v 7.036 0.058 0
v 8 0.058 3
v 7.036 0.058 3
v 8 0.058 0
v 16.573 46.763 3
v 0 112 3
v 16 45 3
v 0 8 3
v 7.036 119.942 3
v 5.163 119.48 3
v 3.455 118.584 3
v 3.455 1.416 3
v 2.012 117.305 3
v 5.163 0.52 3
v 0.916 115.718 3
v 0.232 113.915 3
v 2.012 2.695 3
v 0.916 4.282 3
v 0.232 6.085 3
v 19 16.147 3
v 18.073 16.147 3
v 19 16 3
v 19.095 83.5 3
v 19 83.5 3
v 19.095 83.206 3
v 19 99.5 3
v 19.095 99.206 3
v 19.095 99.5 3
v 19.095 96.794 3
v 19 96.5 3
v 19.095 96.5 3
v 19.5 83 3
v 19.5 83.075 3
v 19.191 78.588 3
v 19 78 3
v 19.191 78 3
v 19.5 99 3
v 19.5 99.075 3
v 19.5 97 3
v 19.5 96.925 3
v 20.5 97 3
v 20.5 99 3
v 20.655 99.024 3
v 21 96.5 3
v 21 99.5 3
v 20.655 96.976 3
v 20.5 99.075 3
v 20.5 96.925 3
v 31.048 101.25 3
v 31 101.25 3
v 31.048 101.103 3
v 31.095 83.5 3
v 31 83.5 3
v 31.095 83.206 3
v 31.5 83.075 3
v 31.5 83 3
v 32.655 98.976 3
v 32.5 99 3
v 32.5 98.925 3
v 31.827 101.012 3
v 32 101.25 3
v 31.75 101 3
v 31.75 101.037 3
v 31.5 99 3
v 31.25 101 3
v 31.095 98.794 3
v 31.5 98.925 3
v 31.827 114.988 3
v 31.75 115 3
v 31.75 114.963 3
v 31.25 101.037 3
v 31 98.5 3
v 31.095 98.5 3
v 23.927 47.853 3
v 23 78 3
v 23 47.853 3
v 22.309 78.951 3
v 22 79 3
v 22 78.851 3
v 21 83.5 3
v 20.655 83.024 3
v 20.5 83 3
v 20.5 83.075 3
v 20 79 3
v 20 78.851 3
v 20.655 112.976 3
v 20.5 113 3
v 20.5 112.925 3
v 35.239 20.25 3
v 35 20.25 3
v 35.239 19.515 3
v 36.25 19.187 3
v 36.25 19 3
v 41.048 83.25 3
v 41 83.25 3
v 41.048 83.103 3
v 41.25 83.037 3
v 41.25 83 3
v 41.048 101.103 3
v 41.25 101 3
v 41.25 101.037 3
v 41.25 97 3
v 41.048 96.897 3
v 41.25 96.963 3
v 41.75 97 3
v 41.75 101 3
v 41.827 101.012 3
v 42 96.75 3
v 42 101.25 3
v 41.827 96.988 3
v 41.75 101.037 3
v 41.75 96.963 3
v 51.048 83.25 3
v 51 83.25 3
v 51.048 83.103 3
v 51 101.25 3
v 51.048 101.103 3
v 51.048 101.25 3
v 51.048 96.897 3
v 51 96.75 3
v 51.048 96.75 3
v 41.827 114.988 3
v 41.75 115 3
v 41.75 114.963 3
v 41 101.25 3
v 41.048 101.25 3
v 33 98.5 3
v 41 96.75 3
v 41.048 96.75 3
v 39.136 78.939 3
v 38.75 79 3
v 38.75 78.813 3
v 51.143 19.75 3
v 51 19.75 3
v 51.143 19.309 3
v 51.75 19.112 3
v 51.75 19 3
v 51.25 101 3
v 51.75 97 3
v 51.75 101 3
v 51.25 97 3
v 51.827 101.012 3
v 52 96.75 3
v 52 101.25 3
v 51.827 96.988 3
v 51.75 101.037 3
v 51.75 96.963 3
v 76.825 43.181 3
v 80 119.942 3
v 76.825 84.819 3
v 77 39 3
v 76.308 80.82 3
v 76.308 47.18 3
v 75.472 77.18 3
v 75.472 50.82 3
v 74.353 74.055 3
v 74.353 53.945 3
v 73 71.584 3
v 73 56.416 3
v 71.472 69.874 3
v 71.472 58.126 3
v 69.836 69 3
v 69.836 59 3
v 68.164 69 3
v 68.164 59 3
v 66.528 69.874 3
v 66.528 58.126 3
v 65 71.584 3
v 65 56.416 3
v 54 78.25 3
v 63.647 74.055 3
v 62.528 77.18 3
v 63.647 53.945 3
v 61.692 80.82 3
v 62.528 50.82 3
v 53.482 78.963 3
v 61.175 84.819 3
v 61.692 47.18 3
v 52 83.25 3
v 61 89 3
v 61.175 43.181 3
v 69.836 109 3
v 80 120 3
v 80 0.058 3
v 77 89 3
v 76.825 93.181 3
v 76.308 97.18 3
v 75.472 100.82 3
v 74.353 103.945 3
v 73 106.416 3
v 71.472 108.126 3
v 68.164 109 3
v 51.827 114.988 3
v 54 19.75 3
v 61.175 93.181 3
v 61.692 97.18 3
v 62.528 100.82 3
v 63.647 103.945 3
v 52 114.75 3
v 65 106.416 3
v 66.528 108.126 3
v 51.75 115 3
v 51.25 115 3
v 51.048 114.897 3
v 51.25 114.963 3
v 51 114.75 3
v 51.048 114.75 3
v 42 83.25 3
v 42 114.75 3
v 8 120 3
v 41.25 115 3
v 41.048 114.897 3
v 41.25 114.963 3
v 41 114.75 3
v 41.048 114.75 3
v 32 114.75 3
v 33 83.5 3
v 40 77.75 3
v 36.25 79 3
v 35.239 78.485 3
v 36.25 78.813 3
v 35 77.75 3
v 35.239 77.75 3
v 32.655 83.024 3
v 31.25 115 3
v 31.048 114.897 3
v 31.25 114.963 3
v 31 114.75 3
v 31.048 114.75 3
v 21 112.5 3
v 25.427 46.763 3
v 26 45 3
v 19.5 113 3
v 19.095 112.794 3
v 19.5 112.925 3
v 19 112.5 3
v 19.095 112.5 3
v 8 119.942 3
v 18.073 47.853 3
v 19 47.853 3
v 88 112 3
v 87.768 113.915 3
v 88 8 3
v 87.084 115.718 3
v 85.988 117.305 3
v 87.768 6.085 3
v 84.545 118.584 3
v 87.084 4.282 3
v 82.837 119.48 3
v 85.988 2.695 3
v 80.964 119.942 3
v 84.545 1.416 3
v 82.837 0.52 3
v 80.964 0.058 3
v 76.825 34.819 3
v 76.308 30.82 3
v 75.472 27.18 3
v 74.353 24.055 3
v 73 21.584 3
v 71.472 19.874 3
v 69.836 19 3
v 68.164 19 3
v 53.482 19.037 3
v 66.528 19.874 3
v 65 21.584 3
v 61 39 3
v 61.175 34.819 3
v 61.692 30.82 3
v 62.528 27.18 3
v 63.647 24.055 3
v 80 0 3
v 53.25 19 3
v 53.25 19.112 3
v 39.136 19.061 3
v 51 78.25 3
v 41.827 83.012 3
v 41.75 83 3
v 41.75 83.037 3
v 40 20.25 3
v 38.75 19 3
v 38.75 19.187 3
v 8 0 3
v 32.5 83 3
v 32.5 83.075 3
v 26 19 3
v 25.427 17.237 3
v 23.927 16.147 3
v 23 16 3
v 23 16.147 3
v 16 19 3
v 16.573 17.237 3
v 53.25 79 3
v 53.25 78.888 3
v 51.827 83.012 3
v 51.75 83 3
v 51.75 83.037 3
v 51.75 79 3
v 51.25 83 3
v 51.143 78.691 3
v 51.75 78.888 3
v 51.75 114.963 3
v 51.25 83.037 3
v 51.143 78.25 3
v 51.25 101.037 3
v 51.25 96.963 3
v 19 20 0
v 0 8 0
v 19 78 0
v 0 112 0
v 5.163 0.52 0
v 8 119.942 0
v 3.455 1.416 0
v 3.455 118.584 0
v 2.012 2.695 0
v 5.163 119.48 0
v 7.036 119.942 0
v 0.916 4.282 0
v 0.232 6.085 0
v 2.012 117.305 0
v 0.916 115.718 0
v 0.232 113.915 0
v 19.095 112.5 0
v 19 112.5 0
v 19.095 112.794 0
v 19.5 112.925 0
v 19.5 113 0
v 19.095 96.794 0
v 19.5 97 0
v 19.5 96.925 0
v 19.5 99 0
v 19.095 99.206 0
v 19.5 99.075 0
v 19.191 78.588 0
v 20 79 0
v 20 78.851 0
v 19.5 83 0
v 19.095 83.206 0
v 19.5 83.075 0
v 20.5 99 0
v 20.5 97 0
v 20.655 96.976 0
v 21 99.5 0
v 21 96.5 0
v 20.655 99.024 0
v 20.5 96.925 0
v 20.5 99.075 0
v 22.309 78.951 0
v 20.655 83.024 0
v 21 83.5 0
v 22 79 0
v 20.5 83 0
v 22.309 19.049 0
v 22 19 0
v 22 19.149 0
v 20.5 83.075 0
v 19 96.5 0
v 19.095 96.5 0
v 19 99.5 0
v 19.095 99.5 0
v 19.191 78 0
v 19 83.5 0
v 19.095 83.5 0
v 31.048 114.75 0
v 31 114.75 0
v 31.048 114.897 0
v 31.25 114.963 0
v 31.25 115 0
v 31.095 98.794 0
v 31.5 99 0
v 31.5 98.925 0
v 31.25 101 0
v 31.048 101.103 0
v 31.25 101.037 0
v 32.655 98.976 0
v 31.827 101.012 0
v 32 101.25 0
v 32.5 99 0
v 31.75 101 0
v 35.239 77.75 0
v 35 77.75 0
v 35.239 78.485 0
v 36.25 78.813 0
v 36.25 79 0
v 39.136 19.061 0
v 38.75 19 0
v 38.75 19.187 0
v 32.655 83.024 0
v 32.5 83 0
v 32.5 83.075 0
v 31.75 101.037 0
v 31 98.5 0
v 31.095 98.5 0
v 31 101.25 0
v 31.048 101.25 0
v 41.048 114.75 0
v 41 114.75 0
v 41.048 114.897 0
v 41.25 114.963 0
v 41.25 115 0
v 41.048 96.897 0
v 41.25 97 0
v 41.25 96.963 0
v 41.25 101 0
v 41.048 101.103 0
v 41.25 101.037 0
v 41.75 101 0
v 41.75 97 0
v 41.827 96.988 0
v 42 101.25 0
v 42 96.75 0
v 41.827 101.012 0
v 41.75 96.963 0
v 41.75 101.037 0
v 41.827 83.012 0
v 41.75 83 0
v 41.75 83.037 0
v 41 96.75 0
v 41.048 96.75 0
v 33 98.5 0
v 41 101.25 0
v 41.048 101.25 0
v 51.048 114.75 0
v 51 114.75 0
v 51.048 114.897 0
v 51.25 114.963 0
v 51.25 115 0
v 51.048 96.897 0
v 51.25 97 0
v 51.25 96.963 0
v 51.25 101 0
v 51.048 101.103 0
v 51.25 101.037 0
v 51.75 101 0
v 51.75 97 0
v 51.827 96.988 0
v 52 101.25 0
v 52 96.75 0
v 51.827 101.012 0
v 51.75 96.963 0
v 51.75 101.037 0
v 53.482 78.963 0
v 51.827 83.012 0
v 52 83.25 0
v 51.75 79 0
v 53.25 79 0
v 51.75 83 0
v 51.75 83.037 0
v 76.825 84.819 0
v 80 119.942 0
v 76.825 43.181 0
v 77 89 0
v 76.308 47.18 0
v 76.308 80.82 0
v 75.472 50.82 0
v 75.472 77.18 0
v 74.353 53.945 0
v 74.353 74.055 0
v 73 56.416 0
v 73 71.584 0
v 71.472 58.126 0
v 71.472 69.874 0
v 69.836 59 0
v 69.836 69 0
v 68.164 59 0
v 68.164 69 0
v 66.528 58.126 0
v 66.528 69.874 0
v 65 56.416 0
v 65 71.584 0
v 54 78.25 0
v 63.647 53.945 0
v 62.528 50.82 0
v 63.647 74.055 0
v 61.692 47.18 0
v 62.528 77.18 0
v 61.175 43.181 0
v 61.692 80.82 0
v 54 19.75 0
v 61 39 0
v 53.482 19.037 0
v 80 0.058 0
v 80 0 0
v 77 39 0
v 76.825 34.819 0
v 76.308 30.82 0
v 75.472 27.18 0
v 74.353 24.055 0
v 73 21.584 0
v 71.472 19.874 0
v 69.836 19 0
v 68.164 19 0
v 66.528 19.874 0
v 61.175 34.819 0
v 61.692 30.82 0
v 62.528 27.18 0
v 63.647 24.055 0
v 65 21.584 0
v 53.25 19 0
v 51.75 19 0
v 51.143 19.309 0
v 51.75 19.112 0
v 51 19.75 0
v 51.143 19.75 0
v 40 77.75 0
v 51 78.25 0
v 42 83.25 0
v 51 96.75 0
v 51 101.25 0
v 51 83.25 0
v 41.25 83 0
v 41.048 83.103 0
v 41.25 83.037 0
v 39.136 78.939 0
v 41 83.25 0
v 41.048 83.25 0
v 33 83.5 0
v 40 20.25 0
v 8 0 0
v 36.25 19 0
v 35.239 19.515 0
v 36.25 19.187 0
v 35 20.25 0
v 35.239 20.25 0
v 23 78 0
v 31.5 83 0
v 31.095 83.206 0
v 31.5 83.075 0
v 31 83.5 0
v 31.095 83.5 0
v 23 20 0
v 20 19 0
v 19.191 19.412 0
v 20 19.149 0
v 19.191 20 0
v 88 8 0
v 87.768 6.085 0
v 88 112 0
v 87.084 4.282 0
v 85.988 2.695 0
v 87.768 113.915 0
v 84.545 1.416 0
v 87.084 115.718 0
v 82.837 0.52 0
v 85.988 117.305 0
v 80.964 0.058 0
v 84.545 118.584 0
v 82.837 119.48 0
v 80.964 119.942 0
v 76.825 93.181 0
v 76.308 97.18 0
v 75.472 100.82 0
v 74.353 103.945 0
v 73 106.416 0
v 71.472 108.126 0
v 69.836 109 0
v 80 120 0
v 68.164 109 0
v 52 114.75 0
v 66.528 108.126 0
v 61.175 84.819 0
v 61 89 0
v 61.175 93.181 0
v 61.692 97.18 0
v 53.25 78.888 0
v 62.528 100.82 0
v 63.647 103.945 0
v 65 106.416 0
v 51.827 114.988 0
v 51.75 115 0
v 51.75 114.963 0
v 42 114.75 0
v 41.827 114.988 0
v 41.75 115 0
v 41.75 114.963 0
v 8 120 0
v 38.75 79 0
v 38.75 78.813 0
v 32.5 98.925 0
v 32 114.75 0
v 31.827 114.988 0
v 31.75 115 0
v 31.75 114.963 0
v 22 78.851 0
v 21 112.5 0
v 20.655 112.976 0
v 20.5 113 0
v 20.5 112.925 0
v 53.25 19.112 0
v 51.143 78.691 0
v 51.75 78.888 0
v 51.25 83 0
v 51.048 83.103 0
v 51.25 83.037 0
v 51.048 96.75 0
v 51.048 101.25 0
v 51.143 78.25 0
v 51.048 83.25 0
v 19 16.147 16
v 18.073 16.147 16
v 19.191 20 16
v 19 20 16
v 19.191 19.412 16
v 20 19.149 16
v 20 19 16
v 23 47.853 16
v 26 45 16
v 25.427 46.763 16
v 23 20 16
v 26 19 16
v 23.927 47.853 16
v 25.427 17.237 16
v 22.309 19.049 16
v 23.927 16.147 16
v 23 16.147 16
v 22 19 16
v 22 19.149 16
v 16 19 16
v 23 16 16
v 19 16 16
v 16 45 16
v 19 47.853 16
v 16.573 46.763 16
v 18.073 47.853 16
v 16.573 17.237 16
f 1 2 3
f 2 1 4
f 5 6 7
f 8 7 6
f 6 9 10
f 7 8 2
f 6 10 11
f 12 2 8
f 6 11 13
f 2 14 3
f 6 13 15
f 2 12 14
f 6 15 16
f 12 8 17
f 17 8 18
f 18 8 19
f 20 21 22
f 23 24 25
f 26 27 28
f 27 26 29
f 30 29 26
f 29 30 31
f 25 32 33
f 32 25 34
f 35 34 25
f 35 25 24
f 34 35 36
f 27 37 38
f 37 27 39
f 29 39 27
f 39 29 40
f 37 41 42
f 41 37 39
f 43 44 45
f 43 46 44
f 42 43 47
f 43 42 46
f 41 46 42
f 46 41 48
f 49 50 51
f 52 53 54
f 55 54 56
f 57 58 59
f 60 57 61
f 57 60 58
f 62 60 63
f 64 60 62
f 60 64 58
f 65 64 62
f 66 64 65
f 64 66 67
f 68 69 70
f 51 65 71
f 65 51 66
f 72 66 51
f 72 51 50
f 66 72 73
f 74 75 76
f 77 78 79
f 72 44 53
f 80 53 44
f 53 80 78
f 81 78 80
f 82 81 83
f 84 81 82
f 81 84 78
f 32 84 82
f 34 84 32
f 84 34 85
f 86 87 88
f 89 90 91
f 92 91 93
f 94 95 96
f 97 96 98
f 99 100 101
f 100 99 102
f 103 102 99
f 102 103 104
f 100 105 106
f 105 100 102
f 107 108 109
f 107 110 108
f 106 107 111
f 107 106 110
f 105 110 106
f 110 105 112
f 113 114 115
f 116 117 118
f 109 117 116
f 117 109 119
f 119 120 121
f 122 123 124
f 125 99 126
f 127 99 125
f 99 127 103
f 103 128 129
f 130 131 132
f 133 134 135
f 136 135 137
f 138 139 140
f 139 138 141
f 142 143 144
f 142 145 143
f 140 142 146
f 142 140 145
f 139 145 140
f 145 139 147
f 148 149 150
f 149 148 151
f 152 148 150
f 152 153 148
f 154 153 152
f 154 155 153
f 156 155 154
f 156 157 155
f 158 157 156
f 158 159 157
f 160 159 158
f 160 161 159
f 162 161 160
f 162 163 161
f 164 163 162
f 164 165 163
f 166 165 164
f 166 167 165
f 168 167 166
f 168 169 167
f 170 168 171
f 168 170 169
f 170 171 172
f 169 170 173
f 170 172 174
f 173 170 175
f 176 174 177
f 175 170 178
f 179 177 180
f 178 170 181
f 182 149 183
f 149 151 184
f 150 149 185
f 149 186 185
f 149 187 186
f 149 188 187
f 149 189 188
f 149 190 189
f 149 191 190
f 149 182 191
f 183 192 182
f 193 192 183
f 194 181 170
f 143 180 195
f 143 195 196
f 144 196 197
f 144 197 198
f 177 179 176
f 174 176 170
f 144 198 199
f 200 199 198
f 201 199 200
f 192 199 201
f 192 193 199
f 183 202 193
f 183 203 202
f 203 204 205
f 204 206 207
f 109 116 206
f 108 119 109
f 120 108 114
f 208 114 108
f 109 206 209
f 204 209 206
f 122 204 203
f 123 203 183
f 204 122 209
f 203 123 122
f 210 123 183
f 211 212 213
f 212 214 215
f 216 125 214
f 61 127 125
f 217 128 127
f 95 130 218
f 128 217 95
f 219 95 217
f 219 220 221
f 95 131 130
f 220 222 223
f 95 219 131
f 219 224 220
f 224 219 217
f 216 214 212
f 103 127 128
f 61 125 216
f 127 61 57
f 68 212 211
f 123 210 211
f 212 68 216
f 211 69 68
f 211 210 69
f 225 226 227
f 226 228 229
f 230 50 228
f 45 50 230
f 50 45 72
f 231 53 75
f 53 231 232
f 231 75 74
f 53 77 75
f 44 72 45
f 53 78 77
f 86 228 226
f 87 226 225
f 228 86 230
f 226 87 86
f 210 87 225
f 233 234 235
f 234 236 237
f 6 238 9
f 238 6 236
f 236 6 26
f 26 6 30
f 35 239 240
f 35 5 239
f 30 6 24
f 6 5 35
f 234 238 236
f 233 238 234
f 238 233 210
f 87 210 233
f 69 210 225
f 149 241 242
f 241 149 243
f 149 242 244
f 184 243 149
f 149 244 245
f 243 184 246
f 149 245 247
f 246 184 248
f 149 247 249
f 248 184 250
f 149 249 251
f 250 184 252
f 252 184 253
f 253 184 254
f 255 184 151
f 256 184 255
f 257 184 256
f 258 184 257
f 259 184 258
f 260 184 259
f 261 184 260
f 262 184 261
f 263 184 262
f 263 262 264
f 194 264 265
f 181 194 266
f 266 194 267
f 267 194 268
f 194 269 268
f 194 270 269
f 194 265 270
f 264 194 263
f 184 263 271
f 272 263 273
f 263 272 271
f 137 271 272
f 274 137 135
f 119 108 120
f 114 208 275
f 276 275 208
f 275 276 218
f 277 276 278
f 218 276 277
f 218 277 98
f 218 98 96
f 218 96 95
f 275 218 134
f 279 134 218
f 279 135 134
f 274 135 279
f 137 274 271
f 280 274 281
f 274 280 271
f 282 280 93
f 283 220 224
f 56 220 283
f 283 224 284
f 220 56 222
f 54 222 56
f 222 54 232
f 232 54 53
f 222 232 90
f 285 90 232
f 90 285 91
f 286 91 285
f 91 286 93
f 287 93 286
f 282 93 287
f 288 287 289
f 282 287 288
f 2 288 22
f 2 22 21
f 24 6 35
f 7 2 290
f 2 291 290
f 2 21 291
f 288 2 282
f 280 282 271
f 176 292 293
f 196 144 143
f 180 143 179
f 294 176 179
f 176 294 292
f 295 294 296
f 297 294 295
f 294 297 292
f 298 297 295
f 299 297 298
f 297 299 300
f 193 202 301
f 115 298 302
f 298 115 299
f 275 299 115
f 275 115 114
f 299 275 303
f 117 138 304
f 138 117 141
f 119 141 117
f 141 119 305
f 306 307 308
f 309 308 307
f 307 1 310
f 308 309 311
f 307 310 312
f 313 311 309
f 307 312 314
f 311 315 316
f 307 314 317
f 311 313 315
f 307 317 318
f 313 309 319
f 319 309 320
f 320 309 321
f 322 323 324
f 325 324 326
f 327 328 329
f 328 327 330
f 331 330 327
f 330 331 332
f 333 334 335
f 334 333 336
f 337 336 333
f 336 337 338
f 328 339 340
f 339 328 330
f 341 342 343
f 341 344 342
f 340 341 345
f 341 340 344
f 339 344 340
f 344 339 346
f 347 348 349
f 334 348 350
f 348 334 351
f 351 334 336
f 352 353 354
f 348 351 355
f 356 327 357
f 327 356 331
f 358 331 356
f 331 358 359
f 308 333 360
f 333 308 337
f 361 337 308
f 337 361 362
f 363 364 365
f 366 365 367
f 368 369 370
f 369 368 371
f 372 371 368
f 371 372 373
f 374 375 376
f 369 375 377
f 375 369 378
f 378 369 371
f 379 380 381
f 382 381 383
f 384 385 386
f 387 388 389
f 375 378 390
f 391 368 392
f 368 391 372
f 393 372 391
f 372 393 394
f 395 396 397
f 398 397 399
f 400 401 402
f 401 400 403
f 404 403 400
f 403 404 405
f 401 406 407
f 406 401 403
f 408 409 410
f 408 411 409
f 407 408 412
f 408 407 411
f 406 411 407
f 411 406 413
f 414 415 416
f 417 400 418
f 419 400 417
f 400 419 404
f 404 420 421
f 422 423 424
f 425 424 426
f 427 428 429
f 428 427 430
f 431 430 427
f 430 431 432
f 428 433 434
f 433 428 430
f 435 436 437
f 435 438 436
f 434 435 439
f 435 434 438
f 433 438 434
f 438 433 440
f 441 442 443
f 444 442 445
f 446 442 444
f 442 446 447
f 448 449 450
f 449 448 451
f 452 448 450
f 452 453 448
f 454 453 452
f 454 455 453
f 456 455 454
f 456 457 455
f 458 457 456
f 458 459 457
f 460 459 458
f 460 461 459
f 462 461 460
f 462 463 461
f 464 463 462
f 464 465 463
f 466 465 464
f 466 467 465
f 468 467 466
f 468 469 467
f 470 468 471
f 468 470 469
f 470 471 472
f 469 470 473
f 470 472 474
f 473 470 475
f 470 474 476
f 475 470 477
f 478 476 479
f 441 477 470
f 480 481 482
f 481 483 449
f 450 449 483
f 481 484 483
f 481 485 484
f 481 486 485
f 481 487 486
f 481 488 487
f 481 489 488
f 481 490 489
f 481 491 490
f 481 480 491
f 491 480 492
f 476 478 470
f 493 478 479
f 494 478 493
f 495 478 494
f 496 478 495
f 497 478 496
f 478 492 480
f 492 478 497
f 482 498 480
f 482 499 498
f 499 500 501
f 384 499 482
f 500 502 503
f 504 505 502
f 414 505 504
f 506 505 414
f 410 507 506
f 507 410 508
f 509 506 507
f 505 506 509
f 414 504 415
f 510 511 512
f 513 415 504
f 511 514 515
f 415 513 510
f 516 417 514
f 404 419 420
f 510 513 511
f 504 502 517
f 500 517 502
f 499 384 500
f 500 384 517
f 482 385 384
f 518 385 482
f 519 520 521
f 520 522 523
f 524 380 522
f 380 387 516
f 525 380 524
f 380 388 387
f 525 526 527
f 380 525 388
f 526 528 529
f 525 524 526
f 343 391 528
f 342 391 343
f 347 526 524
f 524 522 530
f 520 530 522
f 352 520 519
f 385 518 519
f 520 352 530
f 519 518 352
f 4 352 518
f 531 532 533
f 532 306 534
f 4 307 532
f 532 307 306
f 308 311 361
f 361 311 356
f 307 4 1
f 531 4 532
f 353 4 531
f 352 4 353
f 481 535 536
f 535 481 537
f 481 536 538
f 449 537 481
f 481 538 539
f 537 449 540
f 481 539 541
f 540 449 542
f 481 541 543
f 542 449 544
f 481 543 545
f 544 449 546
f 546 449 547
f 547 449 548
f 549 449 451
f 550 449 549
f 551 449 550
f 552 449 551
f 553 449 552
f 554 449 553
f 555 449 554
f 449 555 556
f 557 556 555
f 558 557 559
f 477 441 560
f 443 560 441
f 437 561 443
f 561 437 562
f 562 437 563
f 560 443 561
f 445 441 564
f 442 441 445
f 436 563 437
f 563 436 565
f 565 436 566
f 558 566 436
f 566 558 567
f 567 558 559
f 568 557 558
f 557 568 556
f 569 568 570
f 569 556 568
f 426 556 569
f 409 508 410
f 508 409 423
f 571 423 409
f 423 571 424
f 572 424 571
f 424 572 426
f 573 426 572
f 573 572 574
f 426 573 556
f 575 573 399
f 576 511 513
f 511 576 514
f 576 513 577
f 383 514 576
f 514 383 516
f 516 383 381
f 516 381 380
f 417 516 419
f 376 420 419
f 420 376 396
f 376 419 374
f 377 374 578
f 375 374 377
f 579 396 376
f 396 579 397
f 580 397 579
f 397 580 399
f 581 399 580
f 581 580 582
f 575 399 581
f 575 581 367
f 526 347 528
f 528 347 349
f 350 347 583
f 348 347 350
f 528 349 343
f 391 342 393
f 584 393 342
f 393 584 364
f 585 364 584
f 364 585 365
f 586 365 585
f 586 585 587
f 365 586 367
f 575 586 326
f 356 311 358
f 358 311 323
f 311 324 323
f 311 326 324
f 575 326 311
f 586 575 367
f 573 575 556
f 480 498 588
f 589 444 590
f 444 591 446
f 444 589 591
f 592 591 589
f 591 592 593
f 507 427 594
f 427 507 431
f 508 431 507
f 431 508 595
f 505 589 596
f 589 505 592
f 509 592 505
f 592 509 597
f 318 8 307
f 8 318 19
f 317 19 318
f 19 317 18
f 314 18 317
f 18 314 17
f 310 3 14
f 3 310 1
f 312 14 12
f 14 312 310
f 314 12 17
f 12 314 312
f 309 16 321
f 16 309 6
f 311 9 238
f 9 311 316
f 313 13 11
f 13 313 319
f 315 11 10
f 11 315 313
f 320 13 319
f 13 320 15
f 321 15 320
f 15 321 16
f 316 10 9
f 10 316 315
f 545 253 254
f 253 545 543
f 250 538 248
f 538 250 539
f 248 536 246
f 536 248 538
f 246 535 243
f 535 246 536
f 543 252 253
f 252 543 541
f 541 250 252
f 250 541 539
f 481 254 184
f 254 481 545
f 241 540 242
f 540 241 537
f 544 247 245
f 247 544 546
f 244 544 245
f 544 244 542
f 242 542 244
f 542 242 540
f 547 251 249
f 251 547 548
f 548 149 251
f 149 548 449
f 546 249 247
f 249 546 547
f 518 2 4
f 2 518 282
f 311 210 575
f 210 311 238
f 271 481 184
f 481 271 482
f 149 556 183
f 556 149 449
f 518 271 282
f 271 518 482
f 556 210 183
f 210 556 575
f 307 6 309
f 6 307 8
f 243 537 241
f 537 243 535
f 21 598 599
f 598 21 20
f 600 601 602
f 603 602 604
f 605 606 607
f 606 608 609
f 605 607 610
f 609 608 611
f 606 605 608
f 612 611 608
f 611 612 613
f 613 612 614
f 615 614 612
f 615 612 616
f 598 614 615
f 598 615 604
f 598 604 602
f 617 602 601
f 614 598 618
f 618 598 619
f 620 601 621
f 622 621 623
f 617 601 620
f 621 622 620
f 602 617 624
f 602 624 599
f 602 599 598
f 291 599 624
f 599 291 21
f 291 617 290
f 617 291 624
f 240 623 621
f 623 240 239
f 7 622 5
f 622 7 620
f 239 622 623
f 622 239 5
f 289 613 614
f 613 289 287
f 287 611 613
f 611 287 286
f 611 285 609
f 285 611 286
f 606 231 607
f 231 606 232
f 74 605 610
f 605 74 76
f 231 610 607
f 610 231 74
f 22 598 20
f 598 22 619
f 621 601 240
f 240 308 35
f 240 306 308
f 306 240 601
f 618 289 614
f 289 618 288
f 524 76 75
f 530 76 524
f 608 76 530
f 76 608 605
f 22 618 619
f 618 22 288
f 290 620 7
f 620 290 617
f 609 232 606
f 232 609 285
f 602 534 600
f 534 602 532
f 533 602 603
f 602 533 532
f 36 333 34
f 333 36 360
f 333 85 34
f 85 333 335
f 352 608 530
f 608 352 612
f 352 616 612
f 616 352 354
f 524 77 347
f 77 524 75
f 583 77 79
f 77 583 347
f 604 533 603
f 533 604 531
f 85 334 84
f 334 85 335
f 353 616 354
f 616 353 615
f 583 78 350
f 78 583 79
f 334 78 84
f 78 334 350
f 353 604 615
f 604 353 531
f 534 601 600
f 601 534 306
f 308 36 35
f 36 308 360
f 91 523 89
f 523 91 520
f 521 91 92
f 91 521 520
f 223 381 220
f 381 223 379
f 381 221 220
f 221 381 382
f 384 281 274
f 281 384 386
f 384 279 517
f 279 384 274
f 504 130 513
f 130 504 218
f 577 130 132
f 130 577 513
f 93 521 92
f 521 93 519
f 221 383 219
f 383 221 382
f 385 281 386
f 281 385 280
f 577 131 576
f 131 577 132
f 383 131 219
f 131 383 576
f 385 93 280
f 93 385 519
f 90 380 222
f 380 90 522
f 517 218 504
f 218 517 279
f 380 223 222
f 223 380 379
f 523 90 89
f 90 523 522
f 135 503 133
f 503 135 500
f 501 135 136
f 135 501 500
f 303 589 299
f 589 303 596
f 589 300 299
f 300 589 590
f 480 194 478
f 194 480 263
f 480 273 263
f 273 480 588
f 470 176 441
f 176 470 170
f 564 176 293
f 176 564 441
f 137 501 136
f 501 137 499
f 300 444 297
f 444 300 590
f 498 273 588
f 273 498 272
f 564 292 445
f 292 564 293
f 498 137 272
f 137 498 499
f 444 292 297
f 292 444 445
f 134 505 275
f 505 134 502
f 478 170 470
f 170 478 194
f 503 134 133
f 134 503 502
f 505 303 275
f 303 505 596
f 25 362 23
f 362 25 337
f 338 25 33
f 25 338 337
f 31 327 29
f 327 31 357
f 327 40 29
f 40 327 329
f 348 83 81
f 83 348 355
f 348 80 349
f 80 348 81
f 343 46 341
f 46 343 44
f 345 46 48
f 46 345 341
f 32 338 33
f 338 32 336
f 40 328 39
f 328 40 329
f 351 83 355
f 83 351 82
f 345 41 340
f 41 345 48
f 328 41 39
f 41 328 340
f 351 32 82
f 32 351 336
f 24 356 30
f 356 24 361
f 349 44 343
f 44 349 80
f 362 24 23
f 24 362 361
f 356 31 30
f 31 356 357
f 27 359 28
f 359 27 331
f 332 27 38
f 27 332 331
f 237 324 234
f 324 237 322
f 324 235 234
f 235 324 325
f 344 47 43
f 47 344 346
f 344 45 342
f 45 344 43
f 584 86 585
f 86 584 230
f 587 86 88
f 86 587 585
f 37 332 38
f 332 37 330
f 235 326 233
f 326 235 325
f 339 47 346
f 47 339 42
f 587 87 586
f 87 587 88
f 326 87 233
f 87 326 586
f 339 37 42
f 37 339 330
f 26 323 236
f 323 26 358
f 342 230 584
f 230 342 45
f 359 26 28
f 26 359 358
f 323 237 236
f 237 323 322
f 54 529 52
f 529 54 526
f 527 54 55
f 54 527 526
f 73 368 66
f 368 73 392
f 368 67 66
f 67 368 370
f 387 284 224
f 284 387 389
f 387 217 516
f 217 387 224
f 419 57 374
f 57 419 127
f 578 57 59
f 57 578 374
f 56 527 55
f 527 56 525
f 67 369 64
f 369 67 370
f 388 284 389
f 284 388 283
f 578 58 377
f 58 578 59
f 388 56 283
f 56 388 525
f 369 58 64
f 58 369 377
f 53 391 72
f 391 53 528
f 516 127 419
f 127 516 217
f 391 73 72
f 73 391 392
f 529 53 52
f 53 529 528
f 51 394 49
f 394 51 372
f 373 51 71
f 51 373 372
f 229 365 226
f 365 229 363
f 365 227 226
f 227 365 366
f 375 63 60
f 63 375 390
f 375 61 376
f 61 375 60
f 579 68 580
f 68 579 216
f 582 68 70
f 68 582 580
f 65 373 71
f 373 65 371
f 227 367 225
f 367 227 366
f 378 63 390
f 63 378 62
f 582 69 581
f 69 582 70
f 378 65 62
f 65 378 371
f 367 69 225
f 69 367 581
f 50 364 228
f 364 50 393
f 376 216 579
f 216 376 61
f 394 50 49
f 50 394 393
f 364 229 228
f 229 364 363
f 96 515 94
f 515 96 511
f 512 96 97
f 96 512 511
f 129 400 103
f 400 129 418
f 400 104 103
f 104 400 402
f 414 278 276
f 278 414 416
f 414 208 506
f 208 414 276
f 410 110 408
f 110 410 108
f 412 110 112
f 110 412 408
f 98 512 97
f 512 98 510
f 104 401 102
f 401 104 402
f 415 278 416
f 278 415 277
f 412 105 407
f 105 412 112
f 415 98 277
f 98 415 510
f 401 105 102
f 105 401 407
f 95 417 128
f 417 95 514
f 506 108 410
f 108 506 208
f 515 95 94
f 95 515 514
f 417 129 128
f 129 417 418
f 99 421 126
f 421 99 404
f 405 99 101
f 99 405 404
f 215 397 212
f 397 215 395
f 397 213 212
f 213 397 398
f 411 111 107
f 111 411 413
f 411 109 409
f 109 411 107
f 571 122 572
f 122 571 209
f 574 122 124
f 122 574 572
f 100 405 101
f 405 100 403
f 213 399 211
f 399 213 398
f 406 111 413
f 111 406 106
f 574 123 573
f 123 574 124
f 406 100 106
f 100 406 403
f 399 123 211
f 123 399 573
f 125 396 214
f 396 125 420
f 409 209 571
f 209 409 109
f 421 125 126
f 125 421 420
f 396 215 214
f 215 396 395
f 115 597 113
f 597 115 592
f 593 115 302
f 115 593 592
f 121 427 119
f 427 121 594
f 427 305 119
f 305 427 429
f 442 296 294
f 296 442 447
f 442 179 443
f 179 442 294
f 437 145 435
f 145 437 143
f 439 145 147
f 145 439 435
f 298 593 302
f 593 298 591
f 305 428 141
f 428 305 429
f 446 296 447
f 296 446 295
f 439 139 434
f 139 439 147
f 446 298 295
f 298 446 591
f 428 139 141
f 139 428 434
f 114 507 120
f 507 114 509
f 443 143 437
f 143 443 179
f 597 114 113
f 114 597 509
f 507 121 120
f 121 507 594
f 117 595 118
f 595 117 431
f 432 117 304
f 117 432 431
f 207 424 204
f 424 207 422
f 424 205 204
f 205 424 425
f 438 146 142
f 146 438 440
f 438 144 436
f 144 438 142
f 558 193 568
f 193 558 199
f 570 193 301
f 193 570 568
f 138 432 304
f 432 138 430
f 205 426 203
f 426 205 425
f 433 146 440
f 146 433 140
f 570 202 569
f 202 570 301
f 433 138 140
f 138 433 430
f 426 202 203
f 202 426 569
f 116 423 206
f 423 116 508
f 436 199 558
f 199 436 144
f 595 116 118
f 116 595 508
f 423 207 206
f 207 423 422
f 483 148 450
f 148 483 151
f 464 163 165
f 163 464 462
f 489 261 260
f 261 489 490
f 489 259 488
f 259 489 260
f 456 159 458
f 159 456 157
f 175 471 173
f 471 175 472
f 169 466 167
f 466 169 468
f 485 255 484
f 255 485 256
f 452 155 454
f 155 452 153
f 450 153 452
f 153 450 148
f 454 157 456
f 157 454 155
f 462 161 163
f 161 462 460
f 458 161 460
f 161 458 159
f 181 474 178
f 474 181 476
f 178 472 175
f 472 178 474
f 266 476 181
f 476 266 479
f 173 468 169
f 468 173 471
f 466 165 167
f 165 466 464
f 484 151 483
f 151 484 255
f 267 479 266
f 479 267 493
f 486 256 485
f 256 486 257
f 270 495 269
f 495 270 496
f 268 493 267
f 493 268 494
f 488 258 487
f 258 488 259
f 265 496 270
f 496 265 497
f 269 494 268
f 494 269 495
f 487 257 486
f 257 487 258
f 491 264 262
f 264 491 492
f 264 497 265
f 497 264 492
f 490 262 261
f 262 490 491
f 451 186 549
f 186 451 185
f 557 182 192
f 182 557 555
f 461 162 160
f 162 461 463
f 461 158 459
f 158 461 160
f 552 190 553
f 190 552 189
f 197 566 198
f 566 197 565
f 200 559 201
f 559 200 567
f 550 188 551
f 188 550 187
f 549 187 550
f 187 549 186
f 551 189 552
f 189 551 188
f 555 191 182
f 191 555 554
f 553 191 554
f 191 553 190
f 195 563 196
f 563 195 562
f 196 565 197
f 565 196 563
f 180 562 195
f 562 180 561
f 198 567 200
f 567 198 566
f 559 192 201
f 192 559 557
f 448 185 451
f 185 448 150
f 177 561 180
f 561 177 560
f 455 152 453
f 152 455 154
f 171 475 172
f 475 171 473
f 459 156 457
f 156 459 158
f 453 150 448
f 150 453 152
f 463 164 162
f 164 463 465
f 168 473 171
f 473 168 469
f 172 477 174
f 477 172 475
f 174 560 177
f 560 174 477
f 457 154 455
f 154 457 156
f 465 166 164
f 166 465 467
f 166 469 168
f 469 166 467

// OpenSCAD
use <MCAD/boxes.scad>

//	상수
BIG = [1024, 1024, 1024];

//
//	under construction
//

// 주요 수치
THICK = 3;		//	껍질두께
ROUND = 8;	//	상판굴곡
BASE_WIDTH	=	128 - 32 - 8;
BASE_HEIGHT	=	128 - 8;
BASE = [BASE_WIDTH, BASE_HEIGHT, THICK];	//	상판
BASE_MARGIN	=	16;
GUIDE_X	=	[BASE_MARGIN, BASE_MARGIN + 20, BASE_MARGIN + 36, BASE_MARGIN + 45];
GUIDE_Y	=	[0, BASE_HEIGHT - BASE_MARGIN / 2];
PALETTE = [
	[0.3, 0.1, 0.0, 0.5],	//	갈색, 칼손잡이
	[0.5, 0.5, 0.5, 0.5],	//	회색, 칼날
	[0.9, 0.9, 0.9, 1.0],	//	흰색, 상판
	[0.0, 0.0, 0.9, 0.5],	//	파랑
	[0.0, 0.0, 0.0, 0.0]	//	검정 투명, 호환성 예약
];

echo(BASE_WIDTH);

// 주요 수치
BLADE_HOLE_WIDTH = [5, 3, 2, 2];
BLADE_HOLE_HEIGHT = 48;	// 날너비(46) + 여유(2)
SCISSOR_HOLE_WIDTH = 14;		//	가위 두께
SCISSOR_HOLE_HEIGHT = 40;	//	가위 너비

// 텍스트 홈파기
// 상판(base)의 왼쪽 아래 기준준
module mark(name, height, size = 2) {
	translate([0, 0, height / 2])
		linear_extrude(height, center = false)
			text(name, size = size);
}
module print(message) {
	echo("------------------------------------------------------");
	echo(message);
	echo("------------------------------------------------------");
}

//	chefs1
//	거치 홈 너비는 날두께 4mm 이상이면 된다.
//	거치 홈 길이는 날너비 46mm 이상이면 된다.
module chefs1_plate(plate, m = THICK) {
	if (plate[1] <= 46) {
		print("홈길이가 날너비(46mm)보다 길어야 합니다.");
	} else if (plate[1] <= 46 + 4) {
		print("홈길이가 날너비보다 충분히 길어야 합니다.");
	}
		
	hole = [4 + 1, plate[1] - m * 2, plate[2] * 2];
	translate([plate[0] / 2, plate[1] / 2, plate[2] / 2]) {
		difference() {
			roundedBox(size = plate, radius = 0, sidesonly = true);
			roundedBox(size = hole, radius = hole[0] / 4, sidesonly = true);
		}
	}
	color(c=PALETTE[3])
		translate([1, 1, plate[2]])
			mark("1", 0.2, 1);
}

//	chefs2
/*
	- 거치 홈 너비는 날두께 3mm 이상이면 된다.
	- 거치 홈 길이는 날너비 52mm 이상이면 된다.
*/
module chefs2_plate(plate, m = THICK, height = 16, width = 32) {
	if (plate[1] <= 52) {
		print("홈길이가 날너비(52mm)보다 길어야 합니다.");
	} else if (plate[1] <= 52 + 4) {
		print("홈길이가 날너비보다 충분히 길어야 합니다.");
	}
		
	hole = [3 + 1, plate[1] - m * 2, 1024];
	outter = [hole[0] + plate[2] * 2, width, height];
	inner = outter - [m * 2, m * 2, -1];
	translate([plate[0] / 2, plate[1] / 2, plate[2] / 2]) {
		difference() {
			union() {
				roundedBox(size = plate, radius = 0, sidesonly = true);
				translate([0, (outter[1] - plate[1]) / 2, outter[2] / 2])
					difference() {
						roundedBox(size = outter, radius = 1, sidesonly = true);
						roundedBox(size = inner, radius = 1, sidesonly = true);
					}
			}
			roundedBox(size = hole, radius = hole[0] / 4, sidesonly = true);
		}
	}
	color(c=PALETTE[3])
		translate([1, 1, plate[2]])
			mark("2", 0.2, 1);
}

//	chefs3
/*
	- 거치 홈 너비는 날두께 2mm 이상이면 된다.
	- 거치 홈 길이는 날너비 41mm 이상이면 된다.
*/
module chefs3_plate(plate, m = THICK) {
	if (plate[1] <= 41) {
		print("홈길이가 날너비(41mm)보다 길게 합시다. 나중을 위해서.");
	}

	hole = [2 + 1, plate[1] - m * 2, 1024];
	translate([plate[0] / 2, plate[1] / 2, plate[2] / 2]) {
		difference() {
			roundedBox(size = plate, radius = 0, sidesonly = true);
			roundedBox(size = hole, radius = hole[0] / 4, sidesonly = true);
		}
	}

	color(c=PALETTE[3])
		translate([1, 1, plate[2]])
			mark("3", 0.2, 1);
}

//	bread
/*
	- 날두께는 1mm 이다
	- 날너비는 10mm ~ 12mm 이다.
*/
module bread_plate(plate, m = THICK) {
	if (plate[1] <= 10) {
		print("홈길이가 날너비(10mm)보다 길게 합시다. 나중을 위해서.");
	}

	hole = [1 + 1, plate[1] - m * 2, 1024];
	translate([plate[0] / 2, plate[1] / 2, plate[2] / 2]) {
		difference() {
			roundedBox(size = plate, radius = 0, sidesonly = true);
			roundedBox(size = hole, radius = hole[0] / 4, sidesonly = true);
		}
	}

	color(c=PALETTE[3])
		translate([1, 1, plate[2]])
			mark("B", 0.2, 1);
}

//	scissors
/*
	가위
	- 거치 홈 너비는 두께 14mm 이상이면 된다.
	- 거치 홈 길이는 40mm 근처면 된다.
*/
module scissors_plate(plate, m = THICK) {
	if (plate[0] - m * 2 <= 14) {
		print("너비는 두께(14mm)보다 커야 합니다..");
	}

	hole = [1 + 1, plate[1] - m * 2, 1024];
	translate([plate[0] / 2, plate[1] / 2, plate[2] / 2]) {
		difference() {
			roundedBox(size = plate, radius = 0, sidesonly = true);
			translate([0, 0, -16])
				resize([plate[0] - m * 2, plate[1] - m * 2, 1014])
					cylinder(1024, 1024, 1024);
		}
	}

	color(c=PALETTE[3])
		translate([1, 1, plate[2]])
			mark("B", 0.2, 1);
}

//	일반 홈
module general_plate(plate, m = THICK, t = 1) {
	echo(plate, m, t);
	hole = [t, plate[1] - m * 2, 1024];
	translate([plate[0] / 2, plate[1] / 2, plate[2] / 2]) {
		difference() {
			roundedBox(size = plate, radius = 0, sidesonly = true);
			roundedBox(size = hole, radius = hole[0] / 4, sidesonly = true);
		}
	}

	color(c=PALETTE[3])
		translate([1, 1, plate[2]])
			mark("G", 0.2, 1);
}

// deprecated
module top_plate_by_add_each_defined_hole() {
	translate([0, 0, 0])		chefs1_plate([16, 60, THICK], THICK);
	translate([16, 0, 0])	chefs2_plate([16, 60, THICK], THICK, 16);
	translate([32, 0, 0])	chefs3_plate([12, 44, THICK], THICK);

	translate([44, 0, 0])	bread_plate([12, 16, THICK], 1);
	translate([44, 16, 0])	bread_plate([12, 18, THICK], 1);
	translate([44, 34, 0])	bread_plate([12, 20, THICK], 1);
	translate([44, 54, 0])	general_plate([8, 16, THICK], 1, 1);
	translate([44, 54, 0])	general_plate([8, 16, THICK], 1, 1);

	translate([30, 44, 0])	general_plate([8, 16, THICK], 1, 1);
	translate([38, 44, 0])	general_plate([8, 16, THICK], 1, 1);

	translate([56, 0, 0])	scissors_plate([20, 40, THICK], 2);
	translate([56, 40, 0])	scissors_plate([20, 40, THICK], 2);
}

module hole(w, h) {
	translate([w / 2, h / 2, 0])
		roundedBox(size=[w, h, 1024], radius = w / 4, sidesonly = true);
}
module ellipsis(w, h) {
	translate([w / 2, h / 2, -1024 / 2])
		resize([w, h, 1024])
			cylinder(1024, 1024, 1024);
}
module hilt(base, r) {
	translate([base[0] / 2, base[1] / 2, base[2] / 2])
		roundedBox(size=base, radius = r, sidesonly = true);
}

//
module top_plate() {
	HILT = [4 + THICK * 2, 32, 16];
		union() {
			//	홈파기
			difference() {
				union() {
					//	상판
					color(c=PALETTE[2])
						translate([BASE[0] / 2, BASE[1] / 2, THICK / 2])
							roundedBox(size=BASE, radius = ROUND, sidesonly = true);
					color(c=PALETTE[0])
						translate([BASE_MARGIN, BASE_MARGIN, 0])
								hilt(HILT, THICK);
				}
				translate([BASE_MARGIN + THICK, BASE_MARGIN + THICK, 0])			hole(4, 60);
				translate([BASE_MARGIN  + THICK + 16, BASE_MARGIN + THICK, 0])	hole(5, 60);
				translate([BASE_MARGIN  + THICK + 32, BASE_MARGIN + THICK, 0])	hole(3, 60);

				translate([BASE_MARGIN  + THICK + 00, BASE_MARGIN + THICK + 64, 0])	hole(2, 14);
				translate([BASE_MARGIN  + THICK + 00, BASE_MARGIN + THICK + 80, 0])	hole(2, 14);
				translate([BASE_MARGIN  + THICK + 12, BASE_MARGIN + THICK + 64, 0])	hole(2, 16);

				translate([BASE_MARGIN  + THICK + 12, BASE_MARGIN + THICK + 82, 0])	hole(1, 14);
				translate([BASE_MARGIN  + THICK + 22, BASE_MARGIN + THICK + 64, 0])	hole(1, 14);
				translate([BASE_MARGIN  + THICK + 22, BASE_MARGIN + THICK + 82, 0])	hole(1, 14);
				translate([BASE_MARGIN  + THICK + 32, BASE_MARGIN + THICK + 64, 0])	hole(1, 14);
				translate([BASE_MARGIN  + THICK + 32, BASE_MARGIN + THICK + 82, 0])	hole(1, 14);

				translate([BASE_MARGIN  + THICK + 42, BASE_MARGIN + THICK + 0, 0])	ellipsis(16, 40);
				translate([BASE_MARGIN  + THICK + 42, BASE_MARGIN + THICK + 50, 0])	ellipsis(16, 40);
			}
		}
}
top_plate();

//	deprecated
module top_plate_by_define_hole_postion() {
	half = BASE[1] / 2 - BASE_MARGIN -  THICK;
	third = (BASE[1] - BASE_MARGIN * 2 - THICK * 2) / 3;
	forth = (BASE[1] - BASE_MARGIN * 2 - THICK * 3) / 4;

	echo(BASE_WIDTH, half, third, forth);

	difference() {	//	절단면을 보기위하여
		// 주 물체
		union() {
			//	홈파기
			difference() {
				union() {
					//	상판
					color(c=PALETTE[2])
						translate([BASE[0] / 2, BASE[1] / 2, THICK / 2])
							roundedBox(size=BASE, radius = ROUND, sidesonly = true);

					//	태그
					color(c=PALETTE[3])
						translate([BASE[0] - 16, ROUND, BASE[2]])
							mark("andold", 0.2, BASE, BASE_MARGIN);
				}
				
				//	칼날홈파기
				//	1번 제일 두꺼운 칼날 홈
				translate([GUIDE_X[0], BASE_MARGIN, -THICK])
					translate([BLADE_HOLE_WIDTH[0] / 2, half / 2, THICK * 2])
						roundedBox(size = [BLADE_HOLE_WIDTH[0], half, THICK * 4], radius = 1, sidesonly = true);
				translate([GUIDE_X[0], BASE[1] - BASE_MARGIN -half, -THICK])
					translate([BLADE_HOLE_WIDTH[0] / 2, half / 2, THICK * 2])
						roundedBox(size = [BLADE_HOLE_WIDTH[0], half, THICK * 4], radius = 1, sidesonly = true);

				//	두번째로 두꺼운 칼날 홈
				translate([GUIDE_X[1], BASE_MARGIN, -THICK])
					translate([BLADE_HOLE_WIDTH[1] , (third) / 2, THICK * 2])
						roundedBox(size = [BLADE_HOLE_WIDTH[1], third, THICK * 4], radius = 1, sidesonly = true);
				translate([GUIDE_X[1], BASE_MARGIN + third + THICK, -THICK])
					translate([BLADE_HOLE_WIDTH[1] , (third) / 2, THICK * 2])
						roundedBox(size = [BLADE_HOLE_WIDTH[1], third, THICK * 4], radius = 1, sidesonly = true);
				translate([GUIDE_X[1], BASE_MARGIN + (third + THICK) * 2, -THICK])
					translate([BLADE_HOLE_WIDTH[1] , (third) / 2, THICK * 2])
						roundedBox(size = [BLADE_HOLE_WIDTH[1], third, THICK * 4], radius = 1, sidesonly = true);

				//	빵칼 칼날 홈파기
				translate([GUIDE_X[2], BASE_MARGIN, -THICK])
					translate([BLADE_HOLE_WIDTH[2] , (forth) / 2, THICK * 2])
						roundedBox(size = [BLADE_HOLE_WIDTH[2], forth, THICK * 4], radius = 1, sidesonly = true);
				translate([GUIDE_X[2], BASE_MARGIN + (forth + THICK) * 1, -THICK])
					translate([BLADE_HOLE_WIDTH[2] , (forth) / 2, THICK * 2])
						roundedBox(size = [BLADE_HOLE_WIDTH[2], forth, THICK * 4], radius = 1, sidesonly = true);
				translate([GUIDE_X[2], BASE_MARGIN + (forth + THICK) * 2, -THICK])
					translate([BLADE_HOLE_WIDTH[2] , (forth) / 2, THICK * 2])
						roundedBox(size = [BLADE_HOLE_WIDTH[2], forth, THICK * 4], radius = 1, sidesonly = true);
				translate([GUIDE_X[2], BASE_MARGIN + (forth + THICK) * 3, -THICK])
					translate([BLADE_HOLE_WIDTH[2] , (forth) / 2, THICK * 2])
						roundedBox(size = [BLADE_HOLE_WIDTH[2], forth, THICK * 4], radius = 1, sidesonly = true);

				//	가위 홈파기
				translate([GUIDE_X[3], BASE_MARGIN , -THICK])
					translate([SCISSOR_HOLE_WIDTH / 2,SCISSOR_HOLE_HEIGHT / 2, THICK* 2])
						resize([SCISSOR_HOLE_WIDTH, SCISSOR_HOLE_HEIGHT, THICK * 4])	cylinder(h = 100, r = 100, center = true);
				translate([GUIDE_X[3], BASE[1] - BASE_MARGIN - SCISSOR_HOLE_HEIGHT , -THICK])
					translate([SCISSOR_HOLE_WIDTH / 2,SCISSOR_HOLE_HEIGHT / 2, THICK* 2])
						resize([SCISSOR_HOLE_WIDTH, SCISSOR_HOLE_HEIGHT, THICK * 4])	cylinder(h = 100, r = 100, center = true);
			}

		}
		
		//	절단방법 기술
		//	translate([BIG[0] / 2, 0, 0]) roundedBox(size=BIG, radius = 0, sidesonly = false);	// x축 절단면 보기
		//	translate([0, BIG[1] / 2, 0]) roundedBox(size=BIG, radius = 0, sidesonly = false);	// y축 절단면 보기
		//	translate([0, 0, BIG[2] / 2]) roundedBox(size=BIG, radius = 0, sidesonly = false);	// z축 절단면 보기
	}

}

//top_plate();
